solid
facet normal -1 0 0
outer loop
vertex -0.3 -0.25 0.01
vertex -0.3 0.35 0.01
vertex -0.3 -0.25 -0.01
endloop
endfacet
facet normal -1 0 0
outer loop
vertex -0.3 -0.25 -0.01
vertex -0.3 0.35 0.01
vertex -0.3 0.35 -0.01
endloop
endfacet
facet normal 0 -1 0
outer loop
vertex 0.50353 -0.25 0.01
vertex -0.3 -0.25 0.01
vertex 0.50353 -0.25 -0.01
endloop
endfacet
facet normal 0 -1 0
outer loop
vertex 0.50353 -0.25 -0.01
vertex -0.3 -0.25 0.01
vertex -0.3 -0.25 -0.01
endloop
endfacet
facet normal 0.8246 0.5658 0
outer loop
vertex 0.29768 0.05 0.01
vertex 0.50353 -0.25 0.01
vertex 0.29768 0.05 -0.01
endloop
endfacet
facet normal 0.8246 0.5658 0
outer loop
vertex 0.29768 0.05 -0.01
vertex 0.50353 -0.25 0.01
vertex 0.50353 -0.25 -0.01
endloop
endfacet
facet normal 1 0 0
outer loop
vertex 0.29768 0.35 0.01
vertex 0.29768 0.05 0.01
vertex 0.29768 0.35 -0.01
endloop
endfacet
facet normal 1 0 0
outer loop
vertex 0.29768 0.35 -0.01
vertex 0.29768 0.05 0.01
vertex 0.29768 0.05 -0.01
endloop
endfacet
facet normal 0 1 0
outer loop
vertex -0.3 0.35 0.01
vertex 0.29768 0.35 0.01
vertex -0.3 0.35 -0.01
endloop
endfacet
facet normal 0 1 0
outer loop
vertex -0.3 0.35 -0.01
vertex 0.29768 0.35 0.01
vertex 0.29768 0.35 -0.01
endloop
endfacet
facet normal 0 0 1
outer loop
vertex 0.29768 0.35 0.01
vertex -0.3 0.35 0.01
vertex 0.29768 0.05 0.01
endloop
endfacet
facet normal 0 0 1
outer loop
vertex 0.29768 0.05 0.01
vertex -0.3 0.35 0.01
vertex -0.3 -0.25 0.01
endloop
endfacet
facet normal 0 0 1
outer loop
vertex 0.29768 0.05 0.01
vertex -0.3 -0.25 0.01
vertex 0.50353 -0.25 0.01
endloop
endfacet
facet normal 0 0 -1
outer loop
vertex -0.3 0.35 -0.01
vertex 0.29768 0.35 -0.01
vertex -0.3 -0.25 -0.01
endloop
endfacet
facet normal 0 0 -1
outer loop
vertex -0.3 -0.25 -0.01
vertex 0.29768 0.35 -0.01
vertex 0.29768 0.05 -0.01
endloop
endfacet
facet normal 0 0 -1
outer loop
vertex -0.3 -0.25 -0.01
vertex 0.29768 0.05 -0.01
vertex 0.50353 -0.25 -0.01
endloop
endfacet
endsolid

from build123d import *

# Parameters (mm, degrees)
BOSS_EXTRUDE1_DEPTH = 0.01


with BuildPart() as part:
    # Sketch2 → Boss-Extrude1 (new, symmetric)
    with BuildSketch(Plane.XY):
        Polygon((0, 0.35), (0.297683813, 0.35), (0.297683813, 0.05), (0.503527092, -0.25), (0.297683813, -0.25), (-0.3, -0.25), (-0.3, 0.35), align=None)
    extrude(amount=BOSS_EXTRUDE1_DEPTH, both=True)


solid = part.part
